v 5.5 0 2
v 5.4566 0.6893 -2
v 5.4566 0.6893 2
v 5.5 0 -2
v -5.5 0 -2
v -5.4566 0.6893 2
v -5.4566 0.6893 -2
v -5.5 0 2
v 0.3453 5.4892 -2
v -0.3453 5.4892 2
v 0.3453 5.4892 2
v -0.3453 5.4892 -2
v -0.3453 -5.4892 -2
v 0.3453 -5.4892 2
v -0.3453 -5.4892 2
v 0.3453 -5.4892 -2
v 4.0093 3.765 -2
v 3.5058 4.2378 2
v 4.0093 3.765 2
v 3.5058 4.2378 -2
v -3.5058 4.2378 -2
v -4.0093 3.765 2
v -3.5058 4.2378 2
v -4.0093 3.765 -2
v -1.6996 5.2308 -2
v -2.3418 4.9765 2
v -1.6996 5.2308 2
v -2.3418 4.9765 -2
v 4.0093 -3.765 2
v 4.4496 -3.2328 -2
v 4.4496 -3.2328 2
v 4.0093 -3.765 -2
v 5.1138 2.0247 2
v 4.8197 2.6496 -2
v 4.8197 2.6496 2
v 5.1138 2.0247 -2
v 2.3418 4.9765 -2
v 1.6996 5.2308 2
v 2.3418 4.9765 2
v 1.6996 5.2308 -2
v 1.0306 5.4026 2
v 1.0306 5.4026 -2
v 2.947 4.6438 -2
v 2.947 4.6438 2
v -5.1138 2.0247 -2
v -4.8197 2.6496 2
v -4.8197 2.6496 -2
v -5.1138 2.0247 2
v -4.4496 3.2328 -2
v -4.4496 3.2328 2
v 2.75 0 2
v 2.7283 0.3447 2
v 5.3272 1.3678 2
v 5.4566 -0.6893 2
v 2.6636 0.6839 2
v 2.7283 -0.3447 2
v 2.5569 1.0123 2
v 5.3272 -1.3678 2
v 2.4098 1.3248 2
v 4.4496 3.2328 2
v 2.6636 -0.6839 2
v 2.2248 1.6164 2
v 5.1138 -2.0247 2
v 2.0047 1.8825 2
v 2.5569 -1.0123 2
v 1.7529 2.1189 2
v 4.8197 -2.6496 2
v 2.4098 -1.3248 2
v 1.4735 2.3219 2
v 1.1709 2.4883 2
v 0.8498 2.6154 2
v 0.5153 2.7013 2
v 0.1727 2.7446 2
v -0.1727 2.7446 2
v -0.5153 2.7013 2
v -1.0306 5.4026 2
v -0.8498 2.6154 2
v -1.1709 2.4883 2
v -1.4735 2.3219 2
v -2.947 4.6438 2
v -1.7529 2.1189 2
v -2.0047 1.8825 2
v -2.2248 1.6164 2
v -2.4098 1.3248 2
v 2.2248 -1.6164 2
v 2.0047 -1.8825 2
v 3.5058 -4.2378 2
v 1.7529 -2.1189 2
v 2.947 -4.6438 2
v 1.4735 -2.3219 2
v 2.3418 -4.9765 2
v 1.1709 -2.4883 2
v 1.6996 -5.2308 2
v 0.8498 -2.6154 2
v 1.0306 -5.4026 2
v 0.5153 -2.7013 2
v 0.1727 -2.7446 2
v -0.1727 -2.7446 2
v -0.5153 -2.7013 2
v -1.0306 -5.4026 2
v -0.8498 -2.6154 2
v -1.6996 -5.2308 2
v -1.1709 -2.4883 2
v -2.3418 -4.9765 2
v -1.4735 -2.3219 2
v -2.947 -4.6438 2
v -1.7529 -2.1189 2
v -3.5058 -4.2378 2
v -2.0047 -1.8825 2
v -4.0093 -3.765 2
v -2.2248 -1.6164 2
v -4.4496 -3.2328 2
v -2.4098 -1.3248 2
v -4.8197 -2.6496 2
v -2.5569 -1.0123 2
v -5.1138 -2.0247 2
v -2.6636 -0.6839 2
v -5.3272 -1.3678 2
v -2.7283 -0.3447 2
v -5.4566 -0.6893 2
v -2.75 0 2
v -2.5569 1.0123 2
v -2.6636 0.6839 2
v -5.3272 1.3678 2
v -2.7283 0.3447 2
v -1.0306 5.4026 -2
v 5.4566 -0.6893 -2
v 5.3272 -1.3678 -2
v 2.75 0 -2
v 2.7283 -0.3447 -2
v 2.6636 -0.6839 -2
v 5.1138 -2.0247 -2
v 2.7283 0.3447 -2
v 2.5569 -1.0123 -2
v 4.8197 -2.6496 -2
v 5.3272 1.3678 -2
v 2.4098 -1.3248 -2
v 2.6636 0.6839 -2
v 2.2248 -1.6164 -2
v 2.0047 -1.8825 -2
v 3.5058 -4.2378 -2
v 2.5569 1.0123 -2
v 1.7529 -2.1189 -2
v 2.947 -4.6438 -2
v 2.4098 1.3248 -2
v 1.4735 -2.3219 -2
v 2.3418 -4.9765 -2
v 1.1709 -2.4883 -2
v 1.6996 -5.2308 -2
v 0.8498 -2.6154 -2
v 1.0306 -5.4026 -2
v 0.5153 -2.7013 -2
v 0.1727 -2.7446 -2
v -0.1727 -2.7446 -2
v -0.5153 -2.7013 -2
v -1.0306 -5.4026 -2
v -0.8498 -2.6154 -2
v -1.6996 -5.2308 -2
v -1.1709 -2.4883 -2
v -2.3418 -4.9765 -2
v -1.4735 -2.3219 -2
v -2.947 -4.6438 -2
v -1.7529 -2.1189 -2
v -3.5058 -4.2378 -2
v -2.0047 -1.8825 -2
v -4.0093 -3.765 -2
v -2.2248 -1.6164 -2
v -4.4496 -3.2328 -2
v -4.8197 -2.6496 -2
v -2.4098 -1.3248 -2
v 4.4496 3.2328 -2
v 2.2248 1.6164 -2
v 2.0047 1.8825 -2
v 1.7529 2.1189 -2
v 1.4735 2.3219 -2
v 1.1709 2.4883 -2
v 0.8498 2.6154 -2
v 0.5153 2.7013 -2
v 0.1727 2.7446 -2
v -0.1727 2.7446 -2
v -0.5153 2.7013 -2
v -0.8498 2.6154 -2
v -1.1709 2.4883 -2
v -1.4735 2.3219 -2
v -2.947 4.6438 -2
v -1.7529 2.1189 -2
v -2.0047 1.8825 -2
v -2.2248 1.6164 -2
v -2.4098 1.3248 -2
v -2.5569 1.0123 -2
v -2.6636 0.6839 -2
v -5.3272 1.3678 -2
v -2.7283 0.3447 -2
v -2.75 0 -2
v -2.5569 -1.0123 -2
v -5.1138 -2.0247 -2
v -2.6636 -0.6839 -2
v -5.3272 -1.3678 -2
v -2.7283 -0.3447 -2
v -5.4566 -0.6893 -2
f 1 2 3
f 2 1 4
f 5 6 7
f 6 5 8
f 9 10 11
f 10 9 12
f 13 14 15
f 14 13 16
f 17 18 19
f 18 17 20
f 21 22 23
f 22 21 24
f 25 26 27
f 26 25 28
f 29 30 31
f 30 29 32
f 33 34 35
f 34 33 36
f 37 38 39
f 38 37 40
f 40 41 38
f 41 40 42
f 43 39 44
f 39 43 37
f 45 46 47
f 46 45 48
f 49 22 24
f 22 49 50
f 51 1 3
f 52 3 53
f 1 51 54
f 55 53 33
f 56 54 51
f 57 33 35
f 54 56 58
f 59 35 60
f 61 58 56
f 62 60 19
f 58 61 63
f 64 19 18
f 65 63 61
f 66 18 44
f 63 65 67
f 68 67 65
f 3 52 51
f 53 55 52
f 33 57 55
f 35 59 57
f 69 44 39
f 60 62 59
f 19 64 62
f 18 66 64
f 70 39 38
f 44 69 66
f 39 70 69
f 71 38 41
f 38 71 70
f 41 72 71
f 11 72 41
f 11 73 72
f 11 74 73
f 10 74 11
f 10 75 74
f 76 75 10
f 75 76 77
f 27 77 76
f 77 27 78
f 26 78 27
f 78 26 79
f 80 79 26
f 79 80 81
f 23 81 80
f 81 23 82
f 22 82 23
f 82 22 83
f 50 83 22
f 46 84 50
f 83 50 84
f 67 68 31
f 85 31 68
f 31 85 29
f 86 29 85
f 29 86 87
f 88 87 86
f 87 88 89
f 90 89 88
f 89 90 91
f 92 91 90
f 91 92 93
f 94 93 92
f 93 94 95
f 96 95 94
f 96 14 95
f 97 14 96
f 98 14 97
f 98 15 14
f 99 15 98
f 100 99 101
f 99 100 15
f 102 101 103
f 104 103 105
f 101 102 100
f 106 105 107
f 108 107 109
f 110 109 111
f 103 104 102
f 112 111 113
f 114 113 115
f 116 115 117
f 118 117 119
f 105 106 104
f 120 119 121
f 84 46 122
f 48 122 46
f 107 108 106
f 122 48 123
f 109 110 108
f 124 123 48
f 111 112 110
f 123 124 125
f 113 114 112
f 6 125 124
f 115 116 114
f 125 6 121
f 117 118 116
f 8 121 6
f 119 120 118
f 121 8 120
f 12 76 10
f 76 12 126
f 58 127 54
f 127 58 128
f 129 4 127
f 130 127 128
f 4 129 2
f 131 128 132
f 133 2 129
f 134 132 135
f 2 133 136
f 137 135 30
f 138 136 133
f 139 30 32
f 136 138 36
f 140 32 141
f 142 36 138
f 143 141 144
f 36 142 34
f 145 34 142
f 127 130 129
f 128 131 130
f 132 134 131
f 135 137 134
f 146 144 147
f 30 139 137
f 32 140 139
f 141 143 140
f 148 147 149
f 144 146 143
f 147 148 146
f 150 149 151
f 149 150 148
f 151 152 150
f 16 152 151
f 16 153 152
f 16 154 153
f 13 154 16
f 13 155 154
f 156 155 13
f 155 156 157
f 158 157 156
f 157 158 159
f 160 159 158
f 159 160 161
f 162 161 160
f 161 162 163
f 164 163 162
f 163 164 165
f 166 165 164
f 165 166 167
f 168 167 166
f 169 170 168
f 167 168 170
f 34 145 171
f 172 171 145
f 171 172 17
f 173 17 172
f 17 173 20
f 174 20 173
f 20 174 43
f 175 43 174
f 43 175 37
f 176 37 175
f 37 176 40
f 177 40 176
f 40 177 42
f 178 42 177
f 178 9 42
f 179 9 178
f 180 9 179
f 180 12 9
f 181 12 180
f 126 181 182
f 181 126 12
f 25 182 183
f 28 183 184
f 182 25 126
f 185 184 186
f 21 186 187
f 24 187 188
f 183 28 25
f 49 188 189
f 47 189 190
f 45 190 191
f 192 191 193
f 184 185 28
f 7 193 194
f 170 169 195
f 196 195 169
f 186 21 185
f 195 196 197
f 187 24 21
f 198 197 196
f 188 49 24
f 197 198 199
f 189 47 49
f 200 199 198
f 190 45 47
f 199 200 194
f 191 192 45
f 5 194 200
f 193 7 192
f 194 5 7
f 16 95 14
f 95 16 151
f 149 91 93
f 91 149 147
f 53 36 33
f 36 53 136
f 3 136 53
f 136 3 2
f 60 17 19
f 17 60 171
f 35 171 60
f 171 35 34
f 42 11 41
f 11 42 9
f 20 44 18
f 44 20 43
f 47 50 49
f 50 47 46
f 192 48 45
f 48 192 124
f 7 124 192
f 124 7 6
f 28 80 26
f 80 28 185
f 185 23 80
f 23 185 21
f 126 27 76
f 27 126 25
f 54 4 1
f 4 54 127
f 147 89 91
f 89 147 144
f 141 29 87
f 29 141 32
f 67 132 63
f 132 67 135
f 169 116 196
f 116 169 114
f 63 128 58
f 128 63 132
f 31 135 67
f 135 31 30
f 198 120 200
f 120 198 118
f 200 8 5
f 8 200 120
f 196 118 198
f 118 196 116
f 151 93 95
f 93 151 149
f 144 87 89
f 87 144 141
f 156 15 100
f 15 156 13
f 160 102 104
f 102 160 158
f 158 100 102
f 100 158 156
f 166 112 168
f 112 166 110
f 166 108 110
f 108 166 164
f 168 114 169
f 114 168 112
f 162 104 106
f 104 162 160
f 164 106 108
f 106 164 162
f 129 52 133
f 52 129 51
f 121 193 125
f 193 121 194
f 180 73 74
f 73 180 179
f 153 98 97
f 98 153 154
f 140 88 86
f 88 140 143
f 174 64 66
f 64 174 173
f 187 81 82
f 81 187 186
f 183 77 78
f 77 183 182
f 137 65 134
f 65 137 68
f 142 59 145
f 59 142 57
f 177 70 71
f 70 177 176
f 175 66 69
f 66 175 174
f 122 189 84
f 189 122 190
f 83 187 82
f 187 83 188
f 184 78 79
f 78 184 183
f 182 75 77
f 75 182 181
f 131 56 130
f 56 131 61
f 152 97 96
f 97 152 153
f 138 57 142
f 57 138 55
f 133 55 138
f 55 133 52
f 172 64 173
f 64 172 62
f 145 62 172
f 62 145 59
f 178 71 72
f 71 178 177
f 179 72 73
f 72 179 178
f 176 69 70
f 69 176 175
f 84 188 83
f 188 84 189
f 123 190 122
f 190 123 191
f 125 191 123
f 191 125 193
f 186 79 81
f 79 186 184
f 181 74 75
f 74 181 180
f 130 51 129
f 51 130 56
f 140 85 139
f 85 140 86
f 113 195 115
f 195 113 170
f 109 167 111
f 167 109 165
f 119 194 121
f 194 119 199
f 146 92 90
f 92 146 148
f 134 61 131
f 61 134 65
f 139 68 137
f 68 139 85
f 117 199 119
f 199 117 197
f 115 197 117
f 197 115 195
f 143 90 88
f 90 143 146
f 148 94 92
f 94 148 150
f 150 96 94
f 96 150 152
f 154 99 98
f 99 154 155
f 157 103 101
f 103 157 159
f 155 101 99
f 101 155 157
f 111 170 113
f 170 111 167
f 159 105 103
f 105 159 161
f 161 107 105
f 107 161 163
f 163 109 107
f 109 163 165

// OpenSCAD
$fn = 50;


difference() {
	union() {
		translate(v = [0, 0, -2.0000000000]) {
			cylinder(h = 4, r = 5.5000000000);
		}
	}
	union() {
		translate(v = [0, 0, -100.0000000000]) {
			cylinder(h = 200, r = 2.7500000000);
		}
	}
}
